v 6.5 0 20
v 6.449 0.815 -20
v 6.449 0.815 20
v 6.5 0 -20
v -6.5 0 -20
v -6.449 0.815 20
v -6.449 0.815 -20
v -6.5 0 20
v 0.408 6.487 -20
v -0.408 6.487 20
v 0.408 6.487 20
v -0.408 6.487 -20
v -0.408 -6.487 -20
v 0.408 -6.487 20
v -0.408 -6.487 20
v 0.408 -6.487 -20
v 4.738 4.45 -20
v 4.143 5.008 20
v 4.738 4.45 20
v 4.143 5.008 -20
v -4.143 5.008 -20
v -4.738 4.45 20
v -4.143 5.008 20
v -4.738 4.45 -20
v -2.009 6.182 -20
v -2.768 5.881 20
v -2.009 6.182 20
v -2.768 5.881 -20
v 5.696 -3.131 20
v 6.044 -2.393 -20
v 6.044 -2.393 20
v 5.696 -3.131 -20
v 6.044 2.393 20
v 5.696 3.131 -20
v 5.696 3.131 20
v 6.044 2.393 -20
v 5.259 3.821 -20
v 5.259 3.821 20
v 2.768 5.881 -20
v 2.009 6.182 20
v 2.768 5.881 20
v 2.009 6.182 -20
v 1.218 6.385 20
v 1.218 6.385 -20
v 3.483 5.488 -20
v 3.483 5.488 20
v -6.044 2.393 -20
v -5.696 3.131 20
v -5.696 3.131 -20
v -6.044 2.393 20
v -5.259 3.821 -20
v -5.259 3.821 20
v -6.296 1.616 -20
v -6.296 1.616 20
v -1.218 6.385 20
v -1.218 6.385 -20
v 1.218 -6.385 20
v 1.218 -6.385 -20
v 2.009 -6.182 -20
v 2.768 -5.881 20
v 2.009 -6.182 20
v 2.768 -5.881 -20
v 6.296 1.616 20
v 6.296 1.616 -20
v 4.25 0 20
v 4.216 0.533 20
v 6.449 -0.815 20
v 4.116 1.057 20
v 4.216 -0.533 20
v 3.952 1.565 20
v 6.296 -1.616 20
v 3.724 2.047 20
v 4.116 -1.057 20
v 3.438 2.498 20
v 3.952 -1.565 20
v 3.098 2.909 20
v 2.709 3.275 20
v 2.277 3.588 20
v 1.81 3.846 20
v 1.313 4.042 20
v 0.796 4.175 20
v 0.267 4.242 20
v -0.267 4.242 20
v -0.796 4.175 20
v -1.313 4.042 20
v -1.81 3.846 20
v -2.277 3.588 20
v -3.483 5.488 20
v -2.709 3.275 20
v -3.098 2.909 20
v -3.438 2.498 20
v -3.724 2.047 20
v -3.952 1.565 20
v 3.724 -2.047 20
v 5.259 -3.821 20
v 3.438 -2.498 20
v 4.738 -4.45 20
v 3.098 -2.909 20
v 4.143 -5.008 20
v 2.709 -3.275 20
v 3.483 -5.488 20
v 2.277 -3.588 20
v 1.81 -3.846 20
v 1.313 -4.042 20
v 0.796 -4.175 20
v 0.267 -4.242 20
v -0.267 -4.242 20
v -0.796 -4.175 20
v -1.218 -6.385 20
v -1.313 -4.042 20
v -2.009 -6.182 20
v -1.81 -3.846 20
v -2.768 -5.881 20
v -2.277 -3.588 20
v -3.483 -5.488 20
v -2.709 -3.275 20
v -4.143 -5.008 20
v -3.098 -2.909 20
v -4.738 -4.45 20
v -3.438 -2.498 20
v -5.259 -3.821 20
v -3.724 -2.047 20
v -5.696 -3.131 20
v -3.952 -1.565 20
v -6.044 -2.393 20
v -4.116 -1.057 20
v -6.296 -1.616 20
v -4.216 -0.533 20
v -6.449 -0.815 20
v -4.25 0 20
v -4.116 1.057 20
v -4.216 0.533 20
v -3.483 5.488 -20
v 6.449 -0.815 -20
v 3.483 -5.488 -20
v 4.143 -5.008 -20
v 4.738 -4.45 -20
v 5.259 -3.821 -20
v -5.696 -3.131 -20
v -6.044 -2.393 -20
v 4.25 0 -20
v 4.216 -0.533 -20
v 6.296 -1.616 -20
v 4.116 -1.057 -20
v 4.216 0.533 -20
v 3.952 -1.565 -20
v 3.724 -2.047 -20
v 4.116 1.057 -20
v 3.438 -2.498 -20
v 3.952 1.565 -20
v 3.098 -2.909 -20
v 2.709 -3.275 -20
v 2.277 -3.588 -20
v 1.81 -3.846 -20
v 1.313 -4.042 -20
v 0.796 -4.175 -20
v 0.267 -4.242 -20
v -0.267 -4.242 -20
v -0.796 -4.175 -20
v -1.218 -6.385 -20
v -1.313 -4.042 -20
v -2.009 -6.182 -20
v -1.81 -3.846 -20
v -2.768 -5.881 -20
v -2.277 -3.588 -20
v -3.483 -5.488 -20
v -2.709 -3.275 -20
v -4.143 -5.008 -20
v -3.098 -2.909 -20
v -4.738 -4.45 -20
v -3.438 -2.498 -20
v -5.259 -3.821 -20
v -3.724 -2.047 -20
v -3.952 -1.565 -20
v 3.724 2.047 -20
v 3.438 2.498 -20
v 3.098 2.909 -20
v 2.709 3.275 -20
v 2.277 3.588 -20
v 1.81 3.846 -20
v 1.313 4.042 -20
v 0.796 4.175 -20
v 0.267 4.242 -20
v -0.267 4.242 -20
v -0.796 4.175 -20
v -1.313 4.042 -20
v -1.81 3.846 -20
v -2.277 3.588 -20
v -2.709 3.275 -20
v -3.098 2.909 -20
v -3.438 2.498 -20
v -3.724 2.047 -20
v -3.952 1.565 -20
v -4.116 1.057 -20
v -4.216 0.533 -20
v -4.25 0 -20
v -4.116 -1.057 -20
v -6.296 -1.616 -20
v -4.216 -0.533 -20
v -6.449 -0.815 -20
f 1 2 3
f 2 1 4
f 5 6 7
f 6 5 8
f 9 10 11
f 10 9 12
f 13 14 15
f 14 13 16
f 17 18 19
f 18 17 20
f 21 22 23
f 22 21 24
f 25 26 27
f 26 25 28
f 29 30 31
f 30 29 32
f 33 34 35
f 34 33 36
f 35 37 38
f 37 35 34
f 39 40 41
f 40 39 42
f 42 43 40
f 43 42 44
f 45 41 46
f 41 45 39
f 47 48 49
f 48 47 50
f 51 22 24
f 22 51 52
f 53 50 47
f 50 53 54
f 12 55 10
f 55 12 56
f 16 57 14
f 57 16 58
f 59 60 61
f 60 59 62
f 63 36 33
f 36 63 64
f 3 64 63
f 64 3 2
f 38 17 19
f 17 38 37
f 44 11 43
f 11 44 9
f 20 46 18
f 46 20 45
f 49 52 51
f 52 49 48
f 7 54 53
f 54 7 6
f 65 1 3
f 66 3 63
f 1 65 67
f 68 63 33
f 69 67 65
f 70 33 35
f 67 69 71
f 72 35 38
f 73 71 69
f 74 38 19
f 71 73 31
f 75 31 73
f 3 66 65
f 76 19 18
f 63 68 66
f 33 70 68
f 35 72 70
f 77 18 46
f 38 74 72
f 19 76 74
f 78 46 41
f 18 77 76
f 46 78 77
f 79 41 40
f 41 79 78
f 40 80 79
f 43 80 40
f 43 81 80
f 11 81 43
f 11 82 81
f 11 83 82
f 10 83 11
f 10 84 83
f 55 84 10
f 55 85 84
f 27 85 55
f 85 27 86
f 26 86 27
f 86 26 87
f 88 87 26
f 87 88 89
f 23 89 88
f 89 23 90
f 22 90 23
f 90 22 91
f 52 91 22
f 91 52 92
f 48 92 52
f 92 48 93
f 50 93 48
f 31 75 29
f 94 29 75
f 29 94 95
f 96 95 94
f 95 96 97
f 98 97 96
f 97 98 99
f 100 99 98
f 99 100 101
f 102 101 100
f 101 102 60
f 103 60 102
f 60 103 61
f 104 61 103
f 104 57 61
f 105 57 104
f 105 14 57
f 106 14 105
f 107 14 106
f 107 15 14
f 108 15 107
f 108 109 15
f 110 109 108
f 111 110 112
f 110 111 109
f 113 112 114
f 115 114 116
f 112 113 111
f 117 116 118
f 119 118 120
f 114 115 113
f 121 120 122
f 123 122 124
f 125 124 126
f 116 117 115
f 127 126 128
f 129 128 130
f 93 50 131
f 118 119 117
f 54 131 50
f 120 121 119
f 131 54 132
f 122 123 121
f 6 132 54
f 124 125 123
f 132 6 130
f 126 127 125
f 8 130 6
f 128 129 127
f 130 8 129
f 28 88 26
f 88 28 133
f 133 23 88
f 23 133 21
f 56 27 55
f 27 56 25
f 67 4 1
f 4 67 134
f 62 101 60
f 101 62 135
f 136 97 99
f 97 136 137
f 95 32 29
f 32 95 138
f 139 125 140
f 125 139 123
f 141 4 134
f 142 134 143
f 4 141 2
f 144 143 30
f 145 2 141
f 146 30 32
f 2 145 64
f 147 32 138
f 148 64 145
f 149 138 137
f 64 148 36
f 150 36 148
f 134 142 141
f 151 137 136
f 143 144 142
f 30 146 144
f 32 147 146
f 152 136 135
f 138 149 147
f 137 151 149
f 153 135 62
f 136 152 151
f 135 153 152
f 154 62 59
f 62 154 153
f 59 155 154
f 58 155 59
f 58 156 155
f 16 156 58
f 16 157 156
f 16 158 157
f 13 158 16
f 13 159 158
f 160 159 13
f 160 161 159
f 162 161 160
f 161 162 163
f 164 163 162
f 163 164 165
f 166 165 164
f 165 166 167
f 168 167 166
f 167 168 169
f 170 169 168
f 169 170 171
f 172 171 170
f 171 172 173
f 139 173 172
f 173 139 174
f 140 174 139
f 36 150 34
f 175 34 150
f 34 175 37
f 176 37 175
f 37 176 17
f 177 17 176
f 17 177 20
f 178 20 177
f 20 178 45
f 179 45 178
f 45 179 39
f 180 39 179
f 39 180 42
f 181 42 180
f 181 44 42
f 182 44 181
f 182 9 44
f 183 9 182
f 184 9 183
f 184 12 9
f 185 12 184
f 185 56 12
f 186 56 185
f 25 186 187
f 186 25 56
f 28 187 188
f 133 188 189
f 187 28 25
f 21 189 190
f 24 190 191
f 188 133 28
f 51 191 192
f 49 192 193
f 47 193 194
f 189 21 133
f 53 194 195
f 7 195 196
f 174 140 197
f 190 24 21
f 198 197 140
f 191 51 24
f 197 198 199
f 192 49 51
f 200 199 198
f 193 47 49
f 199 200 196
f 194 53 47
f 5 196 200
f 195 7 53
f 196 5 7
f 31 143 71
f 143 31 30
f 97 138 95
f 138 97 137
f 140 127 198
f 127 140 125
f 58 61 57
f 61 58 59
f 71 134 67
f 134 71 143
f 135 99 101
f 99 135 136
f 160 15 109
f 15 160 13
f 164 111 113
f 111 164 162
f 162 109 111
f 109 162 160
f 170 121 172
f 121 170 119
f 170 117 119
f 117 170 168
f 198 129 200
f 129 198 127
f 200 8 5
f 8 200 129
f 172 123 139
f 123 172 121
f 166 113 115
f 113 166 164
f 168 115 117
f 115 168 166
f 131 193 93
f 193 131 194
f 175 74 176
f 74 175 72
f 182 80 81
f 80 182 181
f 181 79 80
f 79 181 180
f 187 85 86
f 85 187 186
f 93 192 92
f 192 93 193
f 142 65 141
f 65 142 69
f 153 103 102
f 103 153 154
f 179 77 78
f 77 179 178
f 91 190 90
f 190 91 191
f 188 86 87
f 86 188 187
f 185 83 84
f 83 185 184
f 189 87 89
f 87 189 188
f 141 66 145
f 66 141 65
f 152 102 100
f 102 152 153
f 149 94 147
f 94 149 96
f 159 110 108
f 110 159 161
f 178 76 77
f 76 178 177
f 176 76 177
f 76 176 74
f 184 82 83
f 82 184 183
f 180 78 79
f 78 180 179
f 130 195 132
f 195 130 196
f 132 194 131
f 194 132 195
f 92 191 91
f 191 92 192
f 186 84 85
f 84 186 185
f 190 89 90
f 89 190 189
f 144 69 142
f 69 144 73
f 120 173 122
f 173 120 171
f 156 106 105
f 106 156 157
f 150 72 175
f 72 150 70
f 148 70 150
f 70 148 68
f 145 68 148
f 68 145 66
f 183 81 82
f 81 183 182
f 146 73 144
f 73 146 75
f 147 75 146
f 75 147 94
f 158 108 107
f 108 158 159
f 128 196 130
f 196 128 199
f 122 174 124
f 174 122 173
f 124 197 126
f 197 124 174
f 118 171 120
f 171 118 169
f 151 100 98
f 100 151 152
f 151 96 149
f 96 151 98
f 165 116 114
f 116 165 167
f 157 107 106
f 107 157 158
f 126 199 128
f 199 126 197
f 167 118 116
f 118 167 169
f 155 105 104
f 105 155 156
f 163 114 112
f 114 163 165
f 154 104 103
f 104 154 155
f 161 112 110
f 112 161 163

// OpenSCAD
$fn = 50;


difference() {
	union() {
		translate(v = [0, 0, -20.0000000000]) {
			cylinder(h = 40, r = 6.5000000000);
		}
	}
	union() {
		translate(v = [0, 0, -100.0000000000]) {
			cylinder(h = 200, r = 4.2500000000);
		}
	}
}
